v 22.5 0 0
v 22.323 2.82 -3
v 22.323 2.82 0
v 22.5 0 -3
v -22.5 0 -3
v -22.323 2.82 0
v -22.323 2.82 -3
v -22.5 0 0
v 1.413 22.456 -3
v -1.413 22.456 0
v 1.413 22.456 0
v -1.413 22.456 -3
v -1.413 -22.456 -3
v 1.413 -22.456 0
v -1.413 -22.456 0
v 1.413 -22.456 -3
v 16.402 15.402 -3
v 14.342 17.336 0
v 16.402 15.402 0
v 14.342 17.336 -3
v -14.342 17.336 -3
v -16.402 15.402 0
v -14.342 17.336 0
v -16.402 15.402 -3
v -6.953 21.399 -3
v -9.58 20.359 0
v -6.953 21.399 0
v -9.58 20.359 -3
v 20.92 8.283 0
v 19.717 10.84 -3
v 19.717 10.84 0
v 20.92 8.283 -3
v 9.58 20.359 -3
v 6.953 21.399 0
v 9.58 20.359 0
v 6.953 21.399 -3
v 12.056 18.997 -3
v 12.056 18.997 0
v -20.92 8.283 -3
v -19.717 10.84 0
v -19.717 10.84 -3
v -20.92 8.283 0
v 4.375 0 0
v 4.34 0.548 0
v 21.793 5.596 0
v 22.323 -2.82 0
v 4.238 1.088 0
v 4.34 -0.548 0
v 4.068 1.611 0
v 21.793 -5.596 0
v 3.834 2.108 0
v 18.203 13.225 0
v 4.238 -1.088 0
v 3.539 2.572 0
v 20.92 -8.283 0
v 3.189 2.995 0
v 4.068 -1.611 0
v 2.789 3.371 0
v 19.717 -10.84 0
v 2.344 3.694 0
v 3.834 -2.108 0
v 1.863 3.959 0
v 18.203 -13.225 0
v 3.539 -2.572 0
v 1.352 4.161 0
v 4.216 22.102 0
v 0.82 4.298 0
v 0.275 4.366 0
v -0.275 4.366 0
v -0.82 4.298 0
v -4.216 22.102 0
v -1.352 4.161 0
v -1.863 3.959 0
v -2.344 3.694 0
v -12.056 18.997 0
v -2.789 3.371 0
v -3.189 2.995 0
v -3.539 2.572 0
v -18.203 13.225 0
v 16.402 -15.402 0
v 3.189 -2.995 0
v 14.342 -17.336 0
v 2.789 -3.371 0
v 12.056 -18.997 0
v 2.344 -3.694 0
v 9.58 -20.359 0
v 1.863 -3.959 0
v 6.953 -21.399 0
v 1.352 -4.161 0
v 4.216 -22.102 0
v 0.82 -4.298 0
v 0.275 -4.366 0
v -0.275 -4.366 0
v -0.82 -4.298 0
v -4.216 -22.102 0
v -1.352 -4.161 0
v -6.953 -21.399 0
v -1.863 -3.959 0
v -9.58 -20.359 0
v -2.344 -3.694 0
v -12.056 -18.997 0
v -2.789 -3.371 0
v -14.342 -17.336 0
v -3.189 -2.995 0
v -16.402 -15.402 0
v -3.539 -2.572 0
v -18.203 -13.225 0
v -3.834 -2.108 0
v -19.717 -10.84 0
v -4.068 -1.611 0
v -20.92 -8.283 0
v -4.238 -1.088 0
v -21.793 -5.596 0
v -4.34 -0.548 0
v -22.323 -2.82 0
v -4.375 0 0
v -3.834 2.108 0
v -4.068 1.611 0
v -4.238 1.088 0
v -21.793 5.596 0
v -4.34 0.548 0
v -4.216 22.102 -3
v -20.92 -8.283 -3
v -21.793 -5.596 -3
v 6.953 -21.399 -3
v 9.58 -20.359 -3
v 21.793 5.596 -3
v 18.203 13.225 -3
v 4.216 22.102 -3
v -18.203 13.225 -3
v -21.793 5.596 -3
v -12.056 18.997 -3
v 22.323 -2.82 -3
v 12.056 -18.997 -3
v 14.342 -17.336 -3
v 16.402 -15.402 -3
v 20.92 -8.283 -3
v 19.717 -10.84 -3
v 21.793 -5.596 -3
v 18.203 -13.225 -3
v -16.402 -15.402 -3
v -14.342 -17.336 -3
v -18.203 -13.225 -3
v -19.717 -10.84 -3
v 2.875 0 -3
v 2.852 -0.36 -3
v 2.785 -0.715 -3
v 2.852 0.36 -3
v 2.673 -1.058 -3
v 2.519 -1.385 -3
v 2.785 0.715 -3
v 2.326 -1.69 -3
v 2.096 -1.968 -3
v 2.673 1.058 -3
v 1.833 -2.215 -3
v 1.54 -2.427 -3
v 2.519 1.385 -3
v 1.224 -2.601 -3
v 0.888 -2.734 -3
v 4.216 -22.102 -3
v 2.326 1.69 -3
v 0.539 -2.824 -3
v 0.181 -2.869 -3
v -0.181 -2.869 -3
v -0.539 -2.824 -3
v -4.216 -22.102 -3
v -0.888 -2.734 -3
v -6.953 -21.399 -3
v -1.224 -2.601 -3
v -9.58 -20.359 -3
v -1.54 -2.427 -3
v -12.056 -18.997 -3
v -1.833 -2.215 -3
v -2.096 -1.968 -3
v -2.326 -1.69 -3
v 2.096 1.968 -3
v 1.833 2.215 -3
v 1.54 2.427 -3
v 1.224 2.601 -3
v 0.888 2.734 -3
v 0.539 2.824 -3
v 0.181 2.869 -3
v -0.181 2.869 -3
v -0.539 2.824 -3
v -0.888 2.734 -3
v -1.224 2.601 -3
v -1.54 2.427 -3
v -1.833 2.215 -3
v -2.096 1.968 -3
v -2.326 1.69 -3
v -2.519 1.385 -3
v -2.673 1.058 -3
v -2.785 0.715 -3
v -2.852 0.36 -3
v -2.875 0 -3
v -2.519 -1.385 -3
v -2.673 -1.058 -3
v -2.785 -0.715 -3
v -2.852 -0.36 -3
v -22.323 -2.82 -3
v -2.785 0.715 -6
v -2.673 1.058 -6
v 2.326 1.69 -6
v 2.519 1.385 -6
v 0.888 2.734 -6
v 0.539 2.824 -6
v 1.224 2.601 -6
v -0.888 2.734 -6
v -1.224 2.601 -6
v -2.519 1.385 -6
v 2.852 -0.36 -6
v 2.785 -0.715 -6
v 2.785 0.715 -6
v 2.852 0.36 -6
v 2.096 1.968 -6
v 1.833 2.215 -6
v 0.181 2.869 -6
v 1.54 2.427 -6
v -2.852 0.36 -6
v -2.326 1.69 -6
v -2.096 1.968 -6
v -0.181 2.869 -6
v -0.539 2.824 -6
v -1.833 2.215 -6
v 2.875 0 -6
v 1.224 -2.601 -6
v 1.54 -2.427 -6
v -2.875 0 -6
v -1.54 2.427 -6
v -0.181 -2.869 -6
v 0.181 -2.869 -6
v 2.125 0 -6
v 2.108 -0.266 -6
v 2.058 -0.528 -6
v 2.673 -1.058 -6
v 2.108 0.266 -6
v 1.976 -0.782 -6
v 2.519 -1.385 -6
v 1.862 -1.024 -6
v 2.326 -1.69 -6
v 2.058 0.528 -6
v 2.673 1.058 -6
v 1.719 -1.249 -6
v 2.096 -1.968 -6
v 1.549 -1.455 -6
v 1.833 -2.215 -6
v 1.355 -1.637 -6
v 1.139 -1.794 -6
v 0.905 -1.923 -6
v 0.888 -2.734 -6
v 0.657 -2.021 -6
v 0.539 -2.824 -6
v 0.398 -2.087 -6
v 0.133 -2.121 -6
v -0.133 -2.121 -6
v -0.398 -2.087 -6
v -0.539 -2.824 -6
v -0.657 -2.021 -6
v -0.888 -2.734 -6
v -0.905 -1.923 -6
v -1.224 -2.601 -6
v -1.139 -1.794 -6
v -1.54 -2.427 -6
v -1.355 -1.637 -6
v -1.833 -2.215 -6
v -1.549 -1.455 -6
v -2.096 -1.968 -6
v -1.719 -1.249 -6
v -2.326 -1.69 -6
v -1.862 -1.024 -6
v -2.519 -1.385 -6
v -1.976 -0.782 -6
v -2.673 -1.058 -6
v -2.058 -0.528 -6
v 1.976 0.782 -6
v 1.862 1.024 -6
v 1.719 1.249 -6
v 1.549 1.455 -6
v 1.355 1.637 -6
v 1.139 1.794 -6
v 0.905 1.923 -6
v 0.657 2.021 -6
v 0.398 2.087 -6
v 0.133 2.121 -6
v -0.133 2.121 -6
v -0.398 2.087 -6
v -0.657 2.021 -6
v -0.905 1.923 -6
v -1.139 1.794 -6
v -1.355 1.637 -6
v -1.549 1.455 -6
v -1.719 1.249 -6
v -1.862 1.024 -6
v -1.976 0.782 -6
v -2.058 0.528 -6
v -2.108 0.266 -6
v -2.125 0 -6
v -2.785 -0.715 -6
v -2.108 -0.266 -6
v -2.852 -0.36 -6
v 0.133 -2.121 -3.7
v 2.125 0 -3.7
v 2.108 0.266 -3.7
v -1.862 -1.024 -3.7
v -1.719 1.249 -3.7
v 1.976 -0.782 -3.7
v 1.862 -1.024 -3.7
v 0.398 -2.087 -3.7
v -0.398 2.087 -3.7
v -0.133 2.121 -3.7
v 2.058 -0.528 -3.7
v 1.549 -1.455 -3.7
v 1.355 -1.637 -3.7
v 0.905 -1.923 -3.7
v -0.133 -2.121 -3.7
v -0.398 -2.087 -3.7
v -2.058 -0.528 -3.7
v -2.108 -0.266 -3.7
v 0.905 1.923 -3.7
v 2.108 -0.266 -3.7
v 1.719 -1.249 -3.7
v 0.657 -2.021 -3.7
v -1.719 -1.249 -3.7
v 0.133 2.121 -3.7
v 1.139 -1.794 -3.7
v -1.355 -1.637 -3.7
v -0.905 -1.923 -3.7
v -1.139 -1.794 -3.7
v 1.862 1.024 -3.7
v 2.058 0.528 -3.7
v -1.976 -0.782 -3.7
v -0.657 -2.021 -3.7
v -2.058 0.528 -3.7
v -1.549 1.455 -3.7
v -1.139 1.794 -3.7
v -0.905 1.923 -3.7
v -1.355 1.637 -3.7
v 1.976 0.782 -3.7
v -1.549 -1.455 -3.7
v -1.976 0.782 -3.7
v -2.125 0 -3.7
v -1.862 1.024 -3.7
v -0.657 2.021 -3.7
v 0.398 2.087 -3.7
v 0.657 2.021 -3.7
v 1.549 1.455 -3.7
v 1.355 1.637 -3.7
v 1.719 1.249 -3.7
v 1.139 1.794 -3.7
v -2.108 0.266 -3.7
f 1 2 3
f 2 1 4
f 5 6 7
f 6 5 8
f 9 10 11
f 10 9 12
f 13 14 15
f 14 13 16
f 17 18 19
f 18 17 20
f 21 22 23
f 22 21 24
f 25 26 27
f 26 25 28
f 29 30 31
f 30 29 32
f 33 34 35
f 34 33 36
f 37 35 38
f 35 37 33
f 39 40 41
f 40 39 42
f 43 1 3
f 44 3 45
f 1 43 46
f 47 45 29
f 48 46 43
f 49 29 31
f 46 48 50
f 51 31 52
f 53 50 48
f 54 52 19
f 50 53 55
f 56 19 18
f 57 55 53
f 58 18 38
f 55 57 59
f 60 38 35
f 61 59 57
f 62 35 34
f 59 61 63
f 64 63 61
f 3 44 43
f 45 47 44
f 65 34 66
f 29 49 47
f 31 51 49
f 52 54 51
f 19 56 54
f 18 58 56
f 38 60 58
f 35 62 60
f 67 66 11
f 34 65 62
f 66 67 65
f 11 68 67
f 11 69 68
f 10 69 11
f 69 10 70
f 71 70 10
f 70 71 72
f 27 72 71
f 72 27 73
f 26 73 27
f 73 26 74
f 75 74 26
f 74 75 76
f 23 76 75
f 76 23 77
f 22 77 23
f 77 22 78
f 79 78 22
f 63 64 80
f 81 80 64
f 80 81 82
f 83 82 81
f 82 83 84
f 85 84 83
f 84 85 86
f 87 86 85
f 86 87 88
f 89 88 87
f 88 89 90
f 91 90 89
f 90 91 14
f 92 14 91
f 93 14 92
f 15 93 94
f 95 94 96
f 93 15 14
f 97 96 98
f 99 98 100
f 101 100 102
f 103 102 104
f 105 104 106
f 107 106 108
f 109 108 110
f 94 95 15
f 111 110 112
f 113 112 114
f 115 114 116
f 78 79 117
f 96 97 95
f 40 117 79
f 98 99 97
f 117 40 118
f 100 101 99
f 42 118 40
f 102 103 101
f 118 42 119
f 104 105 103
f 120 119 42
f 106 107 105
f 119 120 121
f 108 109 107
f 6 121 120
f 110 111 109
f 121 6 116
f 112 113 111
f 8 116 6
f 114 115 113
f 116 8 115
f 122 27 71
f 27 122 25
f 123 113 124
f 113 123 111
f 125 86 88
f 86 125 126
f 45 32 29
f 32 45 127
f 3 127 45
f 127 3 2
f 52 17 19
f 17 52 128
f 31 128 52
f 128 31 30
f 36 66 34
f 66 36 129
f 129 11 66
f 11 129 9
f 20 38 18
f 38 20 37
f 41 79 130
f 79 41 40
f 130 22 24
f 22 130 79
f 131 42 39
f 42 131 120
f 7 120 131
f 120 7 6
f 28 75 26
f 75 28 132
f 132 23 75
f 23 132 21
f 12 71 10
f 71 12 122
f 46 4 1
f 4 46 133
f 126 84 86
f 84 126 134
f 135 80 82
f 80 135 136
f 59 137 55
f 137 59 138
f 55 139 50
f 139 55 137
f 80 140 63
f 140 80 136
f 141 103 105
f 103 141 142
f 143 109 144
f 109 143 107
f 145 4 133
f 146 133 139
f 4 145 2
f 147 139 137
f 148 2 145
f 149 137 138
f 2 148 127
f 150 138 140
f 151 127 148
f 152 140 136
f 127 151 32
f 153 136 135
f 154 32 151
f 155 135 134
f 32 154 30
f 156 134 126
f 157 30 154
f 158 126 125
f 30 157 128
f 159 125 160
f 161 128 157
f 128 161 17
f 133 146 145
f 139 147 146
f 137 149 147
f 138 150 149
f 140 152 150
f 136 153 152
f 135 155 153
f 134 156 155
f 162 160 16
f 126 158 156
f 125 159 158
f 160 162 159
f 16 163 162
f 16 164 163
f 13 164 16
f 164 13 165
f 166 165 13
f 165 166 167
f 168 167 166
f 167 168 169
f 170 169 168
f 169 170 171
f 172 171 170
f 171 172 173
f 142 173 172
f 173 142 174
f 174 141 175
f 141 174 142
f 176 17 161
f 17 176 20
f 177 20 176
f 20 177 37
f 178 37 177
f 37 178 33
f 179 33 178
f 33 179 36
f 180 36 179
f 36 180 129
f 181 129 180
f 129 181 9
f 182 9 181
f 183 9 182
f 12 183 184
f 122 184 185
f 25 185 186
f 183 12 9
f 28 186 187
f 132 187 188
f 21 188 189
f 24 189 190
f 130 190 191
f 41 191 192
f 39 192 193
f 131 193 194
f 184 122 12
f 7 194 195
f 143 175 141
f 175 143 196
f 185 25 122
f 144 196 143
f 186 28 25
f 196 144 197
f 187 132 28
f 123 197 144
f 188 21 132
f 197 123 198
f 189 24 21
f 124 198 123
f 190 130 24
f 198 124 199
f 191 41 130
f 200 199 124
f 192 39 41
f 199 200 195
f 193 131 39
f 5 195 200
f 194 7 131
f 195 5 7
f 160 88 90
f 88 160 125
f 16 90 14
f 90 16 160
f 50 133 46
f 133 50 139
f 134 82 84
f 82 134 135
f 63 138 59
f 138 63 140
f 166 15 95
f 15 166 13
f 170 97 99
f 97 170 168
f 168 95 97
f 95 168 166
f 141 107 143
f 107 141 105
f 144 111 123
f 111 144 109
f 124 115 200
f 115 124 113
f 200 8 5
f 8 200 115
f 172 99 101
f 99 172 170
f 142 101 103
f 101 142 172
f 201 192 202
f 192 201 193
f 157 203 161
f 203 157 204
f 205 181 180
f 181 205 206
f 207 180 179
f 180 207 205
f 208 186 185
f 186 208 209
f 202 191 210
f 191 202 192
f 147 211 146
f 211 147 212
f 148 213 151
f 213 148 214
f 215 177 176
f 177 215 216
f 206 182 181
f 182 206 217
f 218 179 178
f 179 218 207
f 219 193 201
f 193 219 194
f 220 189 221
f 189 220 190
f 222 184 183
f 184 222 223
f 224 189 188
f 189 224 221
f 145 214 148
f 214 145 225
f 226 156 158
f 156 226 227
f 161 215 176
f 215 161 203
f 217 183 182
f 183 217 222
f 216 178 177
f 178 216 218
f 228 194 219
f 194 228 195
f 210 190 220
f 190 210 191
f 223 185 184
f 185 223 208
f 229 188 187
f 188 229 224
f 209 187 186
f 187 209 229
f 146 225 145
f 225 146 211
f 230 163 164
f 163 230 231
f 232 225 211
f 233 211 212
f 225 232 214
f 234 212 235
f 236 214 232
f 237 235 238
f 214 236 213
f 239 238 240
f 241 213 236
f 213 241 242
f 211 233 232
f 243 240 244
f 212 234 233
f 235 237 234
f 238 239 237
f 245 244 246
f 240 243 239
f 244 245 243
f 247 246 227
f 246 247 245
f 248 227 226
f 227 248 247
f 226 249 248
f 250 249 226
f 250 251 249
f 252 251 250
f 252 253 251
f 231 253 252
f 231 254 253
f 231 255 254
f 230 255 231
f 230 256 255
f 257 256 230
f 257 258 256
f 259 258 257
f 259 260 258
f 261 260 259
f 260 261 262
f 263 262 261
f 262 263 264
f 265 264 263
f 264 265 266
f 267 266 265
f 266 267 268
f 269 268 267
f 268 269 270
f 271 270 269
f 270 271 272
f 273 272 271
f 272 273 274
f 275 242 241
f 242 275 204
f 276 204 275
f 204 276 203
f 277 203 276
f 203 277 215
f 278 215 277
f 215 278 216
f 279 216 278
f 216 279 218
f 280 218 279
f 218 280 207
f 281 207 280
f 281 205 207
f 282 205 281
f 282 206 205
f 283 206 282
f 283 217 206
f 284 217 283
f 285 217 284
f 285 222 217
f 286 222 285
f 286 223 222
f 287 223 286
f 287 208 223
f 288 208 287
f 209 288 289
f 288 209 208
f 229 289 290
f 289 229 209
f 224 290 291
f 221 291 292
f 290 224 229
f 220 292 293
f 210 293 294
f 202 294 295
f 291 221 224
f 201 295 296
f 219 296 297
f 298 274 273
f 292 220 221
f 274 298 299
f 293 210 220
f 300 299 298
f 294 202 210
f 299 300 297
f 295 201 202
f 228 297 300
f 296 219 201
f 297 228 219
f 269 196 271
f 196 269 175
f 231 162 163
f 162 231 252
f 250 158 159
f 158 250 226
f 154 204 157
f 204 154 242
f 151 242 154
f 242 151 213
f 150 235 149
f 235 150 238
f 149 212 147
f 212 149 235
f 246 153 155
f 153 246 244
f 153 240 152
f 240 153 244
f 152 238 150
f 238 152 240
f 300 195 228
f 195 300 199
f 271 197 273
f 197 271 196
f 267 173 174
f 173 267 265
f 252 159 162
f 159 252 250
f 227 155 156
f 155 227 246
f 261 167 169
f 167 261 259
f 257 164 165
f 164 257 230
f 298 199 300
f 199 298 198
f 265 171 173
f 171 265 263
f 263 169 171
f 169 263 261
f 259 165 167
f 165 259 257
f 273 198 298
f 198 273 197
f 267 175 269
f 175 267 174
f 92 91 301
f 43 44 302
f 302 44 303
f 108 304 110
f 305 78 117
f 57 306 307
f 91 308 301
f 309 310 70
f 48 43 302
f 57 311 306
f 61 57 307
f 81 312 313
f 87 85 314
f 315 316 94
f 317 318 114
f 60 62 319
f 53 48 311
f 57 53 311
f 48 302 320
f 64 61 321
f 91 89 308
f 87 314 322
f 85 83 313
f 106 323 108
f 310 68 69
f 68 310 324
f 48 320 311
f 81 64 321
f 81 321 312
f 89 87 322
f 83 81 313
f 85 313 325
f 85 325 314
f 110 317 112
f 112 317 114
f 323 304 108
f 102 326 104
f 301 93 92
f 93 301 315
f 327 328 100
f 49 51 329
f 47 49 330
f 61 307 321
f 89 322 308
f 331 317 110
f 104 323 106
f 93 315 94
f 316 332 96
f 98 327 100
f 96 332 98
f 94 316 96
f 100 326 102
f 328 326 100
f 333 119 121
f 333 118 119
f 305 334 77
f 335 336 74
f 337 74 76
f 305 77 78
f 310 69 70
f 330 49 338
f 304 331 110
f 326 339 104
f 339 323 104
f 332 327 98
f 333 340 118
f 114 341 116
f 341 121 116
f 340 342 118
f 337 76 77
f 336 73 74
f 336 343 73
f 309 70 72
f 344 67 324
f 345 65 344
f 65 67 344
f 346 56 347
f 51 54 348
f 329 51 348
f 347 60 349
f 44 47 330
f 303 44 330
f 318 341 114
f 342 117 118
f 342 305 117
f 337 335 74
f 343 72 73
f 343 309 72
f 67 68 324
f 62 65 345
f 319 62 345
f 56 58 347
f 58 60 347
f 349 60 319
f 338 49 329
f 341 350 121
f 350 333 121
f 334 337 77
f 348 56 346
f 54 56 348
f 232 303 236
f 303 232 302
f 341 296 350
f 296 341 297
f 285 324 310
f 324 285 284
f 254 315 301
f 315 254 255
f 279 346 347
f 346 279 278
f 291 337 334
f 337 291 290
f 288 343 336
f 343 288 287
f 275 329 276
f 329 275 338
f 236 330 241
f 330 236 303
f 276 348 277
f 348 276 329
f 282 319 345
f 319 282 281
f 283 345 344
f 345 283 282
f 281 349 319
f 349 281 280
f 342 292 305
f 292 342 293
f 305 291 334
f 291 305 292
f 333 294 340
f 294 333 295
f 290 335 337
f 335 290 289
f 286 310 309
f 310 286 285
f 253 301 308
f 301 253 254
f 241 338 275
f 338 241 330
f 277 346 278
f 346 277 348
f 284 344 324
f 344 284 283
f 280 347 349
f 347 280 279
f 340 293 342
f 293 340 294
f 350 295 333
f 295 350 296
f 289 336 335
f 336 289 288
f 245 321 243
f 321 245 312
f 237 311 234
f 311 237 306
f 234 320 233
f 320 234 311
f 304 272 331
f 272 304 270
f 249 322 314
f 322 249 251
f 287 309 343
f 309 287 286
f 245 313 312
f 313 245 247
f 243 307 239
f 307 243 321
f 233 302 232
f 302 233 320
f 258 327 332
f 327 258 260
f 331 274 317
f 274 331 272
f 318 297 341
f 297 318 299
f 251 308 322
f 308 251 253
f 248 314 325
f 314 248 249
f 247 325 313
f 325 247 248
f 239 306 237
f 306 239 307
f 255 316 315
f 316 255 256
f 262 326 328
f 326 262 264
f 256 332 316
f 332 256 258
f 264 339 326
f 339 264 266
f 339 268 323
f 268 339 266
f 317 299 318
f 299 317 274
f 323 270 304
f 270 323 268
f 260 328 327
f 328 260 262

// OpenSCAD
$fn = 50;


difference() {
	union() {
		translate(v = [0, 0, -3.0000000000]) {
			cylinder(h = 3, r = 22.5000000000);
		}
		translate(v = [0, 0, -6.0000000000]) {
			cylinder(h = 6, r = 2.8750000000);
		}
	}
	union() {
		translate(v = [0, 0, 0]) {
			rotate(a = [0, 0, 0]) {
				difference() {
					union() {
						translate(v = [0, 0, -6.0000000000]) {
							cylinder(h = 6, r = 2.0000000000);
						}
						translate(v = [0, 0, -3.7000000000]) {
							cylinder(h = 3.7000000000, r1 = 2.1250000000, r2 = 4.3750000000);
						}
						translate(v = [0, 0, -6.0000000000]) {
							cylinder(h = 6, r = 2.1250000000);
						}
						translate(v = [0, 0, -6.0000000000]) {
							cylinder(h = 6, r = 2.0000000000);
						}
					}
					union();
				}
			}
		}
	}
}
